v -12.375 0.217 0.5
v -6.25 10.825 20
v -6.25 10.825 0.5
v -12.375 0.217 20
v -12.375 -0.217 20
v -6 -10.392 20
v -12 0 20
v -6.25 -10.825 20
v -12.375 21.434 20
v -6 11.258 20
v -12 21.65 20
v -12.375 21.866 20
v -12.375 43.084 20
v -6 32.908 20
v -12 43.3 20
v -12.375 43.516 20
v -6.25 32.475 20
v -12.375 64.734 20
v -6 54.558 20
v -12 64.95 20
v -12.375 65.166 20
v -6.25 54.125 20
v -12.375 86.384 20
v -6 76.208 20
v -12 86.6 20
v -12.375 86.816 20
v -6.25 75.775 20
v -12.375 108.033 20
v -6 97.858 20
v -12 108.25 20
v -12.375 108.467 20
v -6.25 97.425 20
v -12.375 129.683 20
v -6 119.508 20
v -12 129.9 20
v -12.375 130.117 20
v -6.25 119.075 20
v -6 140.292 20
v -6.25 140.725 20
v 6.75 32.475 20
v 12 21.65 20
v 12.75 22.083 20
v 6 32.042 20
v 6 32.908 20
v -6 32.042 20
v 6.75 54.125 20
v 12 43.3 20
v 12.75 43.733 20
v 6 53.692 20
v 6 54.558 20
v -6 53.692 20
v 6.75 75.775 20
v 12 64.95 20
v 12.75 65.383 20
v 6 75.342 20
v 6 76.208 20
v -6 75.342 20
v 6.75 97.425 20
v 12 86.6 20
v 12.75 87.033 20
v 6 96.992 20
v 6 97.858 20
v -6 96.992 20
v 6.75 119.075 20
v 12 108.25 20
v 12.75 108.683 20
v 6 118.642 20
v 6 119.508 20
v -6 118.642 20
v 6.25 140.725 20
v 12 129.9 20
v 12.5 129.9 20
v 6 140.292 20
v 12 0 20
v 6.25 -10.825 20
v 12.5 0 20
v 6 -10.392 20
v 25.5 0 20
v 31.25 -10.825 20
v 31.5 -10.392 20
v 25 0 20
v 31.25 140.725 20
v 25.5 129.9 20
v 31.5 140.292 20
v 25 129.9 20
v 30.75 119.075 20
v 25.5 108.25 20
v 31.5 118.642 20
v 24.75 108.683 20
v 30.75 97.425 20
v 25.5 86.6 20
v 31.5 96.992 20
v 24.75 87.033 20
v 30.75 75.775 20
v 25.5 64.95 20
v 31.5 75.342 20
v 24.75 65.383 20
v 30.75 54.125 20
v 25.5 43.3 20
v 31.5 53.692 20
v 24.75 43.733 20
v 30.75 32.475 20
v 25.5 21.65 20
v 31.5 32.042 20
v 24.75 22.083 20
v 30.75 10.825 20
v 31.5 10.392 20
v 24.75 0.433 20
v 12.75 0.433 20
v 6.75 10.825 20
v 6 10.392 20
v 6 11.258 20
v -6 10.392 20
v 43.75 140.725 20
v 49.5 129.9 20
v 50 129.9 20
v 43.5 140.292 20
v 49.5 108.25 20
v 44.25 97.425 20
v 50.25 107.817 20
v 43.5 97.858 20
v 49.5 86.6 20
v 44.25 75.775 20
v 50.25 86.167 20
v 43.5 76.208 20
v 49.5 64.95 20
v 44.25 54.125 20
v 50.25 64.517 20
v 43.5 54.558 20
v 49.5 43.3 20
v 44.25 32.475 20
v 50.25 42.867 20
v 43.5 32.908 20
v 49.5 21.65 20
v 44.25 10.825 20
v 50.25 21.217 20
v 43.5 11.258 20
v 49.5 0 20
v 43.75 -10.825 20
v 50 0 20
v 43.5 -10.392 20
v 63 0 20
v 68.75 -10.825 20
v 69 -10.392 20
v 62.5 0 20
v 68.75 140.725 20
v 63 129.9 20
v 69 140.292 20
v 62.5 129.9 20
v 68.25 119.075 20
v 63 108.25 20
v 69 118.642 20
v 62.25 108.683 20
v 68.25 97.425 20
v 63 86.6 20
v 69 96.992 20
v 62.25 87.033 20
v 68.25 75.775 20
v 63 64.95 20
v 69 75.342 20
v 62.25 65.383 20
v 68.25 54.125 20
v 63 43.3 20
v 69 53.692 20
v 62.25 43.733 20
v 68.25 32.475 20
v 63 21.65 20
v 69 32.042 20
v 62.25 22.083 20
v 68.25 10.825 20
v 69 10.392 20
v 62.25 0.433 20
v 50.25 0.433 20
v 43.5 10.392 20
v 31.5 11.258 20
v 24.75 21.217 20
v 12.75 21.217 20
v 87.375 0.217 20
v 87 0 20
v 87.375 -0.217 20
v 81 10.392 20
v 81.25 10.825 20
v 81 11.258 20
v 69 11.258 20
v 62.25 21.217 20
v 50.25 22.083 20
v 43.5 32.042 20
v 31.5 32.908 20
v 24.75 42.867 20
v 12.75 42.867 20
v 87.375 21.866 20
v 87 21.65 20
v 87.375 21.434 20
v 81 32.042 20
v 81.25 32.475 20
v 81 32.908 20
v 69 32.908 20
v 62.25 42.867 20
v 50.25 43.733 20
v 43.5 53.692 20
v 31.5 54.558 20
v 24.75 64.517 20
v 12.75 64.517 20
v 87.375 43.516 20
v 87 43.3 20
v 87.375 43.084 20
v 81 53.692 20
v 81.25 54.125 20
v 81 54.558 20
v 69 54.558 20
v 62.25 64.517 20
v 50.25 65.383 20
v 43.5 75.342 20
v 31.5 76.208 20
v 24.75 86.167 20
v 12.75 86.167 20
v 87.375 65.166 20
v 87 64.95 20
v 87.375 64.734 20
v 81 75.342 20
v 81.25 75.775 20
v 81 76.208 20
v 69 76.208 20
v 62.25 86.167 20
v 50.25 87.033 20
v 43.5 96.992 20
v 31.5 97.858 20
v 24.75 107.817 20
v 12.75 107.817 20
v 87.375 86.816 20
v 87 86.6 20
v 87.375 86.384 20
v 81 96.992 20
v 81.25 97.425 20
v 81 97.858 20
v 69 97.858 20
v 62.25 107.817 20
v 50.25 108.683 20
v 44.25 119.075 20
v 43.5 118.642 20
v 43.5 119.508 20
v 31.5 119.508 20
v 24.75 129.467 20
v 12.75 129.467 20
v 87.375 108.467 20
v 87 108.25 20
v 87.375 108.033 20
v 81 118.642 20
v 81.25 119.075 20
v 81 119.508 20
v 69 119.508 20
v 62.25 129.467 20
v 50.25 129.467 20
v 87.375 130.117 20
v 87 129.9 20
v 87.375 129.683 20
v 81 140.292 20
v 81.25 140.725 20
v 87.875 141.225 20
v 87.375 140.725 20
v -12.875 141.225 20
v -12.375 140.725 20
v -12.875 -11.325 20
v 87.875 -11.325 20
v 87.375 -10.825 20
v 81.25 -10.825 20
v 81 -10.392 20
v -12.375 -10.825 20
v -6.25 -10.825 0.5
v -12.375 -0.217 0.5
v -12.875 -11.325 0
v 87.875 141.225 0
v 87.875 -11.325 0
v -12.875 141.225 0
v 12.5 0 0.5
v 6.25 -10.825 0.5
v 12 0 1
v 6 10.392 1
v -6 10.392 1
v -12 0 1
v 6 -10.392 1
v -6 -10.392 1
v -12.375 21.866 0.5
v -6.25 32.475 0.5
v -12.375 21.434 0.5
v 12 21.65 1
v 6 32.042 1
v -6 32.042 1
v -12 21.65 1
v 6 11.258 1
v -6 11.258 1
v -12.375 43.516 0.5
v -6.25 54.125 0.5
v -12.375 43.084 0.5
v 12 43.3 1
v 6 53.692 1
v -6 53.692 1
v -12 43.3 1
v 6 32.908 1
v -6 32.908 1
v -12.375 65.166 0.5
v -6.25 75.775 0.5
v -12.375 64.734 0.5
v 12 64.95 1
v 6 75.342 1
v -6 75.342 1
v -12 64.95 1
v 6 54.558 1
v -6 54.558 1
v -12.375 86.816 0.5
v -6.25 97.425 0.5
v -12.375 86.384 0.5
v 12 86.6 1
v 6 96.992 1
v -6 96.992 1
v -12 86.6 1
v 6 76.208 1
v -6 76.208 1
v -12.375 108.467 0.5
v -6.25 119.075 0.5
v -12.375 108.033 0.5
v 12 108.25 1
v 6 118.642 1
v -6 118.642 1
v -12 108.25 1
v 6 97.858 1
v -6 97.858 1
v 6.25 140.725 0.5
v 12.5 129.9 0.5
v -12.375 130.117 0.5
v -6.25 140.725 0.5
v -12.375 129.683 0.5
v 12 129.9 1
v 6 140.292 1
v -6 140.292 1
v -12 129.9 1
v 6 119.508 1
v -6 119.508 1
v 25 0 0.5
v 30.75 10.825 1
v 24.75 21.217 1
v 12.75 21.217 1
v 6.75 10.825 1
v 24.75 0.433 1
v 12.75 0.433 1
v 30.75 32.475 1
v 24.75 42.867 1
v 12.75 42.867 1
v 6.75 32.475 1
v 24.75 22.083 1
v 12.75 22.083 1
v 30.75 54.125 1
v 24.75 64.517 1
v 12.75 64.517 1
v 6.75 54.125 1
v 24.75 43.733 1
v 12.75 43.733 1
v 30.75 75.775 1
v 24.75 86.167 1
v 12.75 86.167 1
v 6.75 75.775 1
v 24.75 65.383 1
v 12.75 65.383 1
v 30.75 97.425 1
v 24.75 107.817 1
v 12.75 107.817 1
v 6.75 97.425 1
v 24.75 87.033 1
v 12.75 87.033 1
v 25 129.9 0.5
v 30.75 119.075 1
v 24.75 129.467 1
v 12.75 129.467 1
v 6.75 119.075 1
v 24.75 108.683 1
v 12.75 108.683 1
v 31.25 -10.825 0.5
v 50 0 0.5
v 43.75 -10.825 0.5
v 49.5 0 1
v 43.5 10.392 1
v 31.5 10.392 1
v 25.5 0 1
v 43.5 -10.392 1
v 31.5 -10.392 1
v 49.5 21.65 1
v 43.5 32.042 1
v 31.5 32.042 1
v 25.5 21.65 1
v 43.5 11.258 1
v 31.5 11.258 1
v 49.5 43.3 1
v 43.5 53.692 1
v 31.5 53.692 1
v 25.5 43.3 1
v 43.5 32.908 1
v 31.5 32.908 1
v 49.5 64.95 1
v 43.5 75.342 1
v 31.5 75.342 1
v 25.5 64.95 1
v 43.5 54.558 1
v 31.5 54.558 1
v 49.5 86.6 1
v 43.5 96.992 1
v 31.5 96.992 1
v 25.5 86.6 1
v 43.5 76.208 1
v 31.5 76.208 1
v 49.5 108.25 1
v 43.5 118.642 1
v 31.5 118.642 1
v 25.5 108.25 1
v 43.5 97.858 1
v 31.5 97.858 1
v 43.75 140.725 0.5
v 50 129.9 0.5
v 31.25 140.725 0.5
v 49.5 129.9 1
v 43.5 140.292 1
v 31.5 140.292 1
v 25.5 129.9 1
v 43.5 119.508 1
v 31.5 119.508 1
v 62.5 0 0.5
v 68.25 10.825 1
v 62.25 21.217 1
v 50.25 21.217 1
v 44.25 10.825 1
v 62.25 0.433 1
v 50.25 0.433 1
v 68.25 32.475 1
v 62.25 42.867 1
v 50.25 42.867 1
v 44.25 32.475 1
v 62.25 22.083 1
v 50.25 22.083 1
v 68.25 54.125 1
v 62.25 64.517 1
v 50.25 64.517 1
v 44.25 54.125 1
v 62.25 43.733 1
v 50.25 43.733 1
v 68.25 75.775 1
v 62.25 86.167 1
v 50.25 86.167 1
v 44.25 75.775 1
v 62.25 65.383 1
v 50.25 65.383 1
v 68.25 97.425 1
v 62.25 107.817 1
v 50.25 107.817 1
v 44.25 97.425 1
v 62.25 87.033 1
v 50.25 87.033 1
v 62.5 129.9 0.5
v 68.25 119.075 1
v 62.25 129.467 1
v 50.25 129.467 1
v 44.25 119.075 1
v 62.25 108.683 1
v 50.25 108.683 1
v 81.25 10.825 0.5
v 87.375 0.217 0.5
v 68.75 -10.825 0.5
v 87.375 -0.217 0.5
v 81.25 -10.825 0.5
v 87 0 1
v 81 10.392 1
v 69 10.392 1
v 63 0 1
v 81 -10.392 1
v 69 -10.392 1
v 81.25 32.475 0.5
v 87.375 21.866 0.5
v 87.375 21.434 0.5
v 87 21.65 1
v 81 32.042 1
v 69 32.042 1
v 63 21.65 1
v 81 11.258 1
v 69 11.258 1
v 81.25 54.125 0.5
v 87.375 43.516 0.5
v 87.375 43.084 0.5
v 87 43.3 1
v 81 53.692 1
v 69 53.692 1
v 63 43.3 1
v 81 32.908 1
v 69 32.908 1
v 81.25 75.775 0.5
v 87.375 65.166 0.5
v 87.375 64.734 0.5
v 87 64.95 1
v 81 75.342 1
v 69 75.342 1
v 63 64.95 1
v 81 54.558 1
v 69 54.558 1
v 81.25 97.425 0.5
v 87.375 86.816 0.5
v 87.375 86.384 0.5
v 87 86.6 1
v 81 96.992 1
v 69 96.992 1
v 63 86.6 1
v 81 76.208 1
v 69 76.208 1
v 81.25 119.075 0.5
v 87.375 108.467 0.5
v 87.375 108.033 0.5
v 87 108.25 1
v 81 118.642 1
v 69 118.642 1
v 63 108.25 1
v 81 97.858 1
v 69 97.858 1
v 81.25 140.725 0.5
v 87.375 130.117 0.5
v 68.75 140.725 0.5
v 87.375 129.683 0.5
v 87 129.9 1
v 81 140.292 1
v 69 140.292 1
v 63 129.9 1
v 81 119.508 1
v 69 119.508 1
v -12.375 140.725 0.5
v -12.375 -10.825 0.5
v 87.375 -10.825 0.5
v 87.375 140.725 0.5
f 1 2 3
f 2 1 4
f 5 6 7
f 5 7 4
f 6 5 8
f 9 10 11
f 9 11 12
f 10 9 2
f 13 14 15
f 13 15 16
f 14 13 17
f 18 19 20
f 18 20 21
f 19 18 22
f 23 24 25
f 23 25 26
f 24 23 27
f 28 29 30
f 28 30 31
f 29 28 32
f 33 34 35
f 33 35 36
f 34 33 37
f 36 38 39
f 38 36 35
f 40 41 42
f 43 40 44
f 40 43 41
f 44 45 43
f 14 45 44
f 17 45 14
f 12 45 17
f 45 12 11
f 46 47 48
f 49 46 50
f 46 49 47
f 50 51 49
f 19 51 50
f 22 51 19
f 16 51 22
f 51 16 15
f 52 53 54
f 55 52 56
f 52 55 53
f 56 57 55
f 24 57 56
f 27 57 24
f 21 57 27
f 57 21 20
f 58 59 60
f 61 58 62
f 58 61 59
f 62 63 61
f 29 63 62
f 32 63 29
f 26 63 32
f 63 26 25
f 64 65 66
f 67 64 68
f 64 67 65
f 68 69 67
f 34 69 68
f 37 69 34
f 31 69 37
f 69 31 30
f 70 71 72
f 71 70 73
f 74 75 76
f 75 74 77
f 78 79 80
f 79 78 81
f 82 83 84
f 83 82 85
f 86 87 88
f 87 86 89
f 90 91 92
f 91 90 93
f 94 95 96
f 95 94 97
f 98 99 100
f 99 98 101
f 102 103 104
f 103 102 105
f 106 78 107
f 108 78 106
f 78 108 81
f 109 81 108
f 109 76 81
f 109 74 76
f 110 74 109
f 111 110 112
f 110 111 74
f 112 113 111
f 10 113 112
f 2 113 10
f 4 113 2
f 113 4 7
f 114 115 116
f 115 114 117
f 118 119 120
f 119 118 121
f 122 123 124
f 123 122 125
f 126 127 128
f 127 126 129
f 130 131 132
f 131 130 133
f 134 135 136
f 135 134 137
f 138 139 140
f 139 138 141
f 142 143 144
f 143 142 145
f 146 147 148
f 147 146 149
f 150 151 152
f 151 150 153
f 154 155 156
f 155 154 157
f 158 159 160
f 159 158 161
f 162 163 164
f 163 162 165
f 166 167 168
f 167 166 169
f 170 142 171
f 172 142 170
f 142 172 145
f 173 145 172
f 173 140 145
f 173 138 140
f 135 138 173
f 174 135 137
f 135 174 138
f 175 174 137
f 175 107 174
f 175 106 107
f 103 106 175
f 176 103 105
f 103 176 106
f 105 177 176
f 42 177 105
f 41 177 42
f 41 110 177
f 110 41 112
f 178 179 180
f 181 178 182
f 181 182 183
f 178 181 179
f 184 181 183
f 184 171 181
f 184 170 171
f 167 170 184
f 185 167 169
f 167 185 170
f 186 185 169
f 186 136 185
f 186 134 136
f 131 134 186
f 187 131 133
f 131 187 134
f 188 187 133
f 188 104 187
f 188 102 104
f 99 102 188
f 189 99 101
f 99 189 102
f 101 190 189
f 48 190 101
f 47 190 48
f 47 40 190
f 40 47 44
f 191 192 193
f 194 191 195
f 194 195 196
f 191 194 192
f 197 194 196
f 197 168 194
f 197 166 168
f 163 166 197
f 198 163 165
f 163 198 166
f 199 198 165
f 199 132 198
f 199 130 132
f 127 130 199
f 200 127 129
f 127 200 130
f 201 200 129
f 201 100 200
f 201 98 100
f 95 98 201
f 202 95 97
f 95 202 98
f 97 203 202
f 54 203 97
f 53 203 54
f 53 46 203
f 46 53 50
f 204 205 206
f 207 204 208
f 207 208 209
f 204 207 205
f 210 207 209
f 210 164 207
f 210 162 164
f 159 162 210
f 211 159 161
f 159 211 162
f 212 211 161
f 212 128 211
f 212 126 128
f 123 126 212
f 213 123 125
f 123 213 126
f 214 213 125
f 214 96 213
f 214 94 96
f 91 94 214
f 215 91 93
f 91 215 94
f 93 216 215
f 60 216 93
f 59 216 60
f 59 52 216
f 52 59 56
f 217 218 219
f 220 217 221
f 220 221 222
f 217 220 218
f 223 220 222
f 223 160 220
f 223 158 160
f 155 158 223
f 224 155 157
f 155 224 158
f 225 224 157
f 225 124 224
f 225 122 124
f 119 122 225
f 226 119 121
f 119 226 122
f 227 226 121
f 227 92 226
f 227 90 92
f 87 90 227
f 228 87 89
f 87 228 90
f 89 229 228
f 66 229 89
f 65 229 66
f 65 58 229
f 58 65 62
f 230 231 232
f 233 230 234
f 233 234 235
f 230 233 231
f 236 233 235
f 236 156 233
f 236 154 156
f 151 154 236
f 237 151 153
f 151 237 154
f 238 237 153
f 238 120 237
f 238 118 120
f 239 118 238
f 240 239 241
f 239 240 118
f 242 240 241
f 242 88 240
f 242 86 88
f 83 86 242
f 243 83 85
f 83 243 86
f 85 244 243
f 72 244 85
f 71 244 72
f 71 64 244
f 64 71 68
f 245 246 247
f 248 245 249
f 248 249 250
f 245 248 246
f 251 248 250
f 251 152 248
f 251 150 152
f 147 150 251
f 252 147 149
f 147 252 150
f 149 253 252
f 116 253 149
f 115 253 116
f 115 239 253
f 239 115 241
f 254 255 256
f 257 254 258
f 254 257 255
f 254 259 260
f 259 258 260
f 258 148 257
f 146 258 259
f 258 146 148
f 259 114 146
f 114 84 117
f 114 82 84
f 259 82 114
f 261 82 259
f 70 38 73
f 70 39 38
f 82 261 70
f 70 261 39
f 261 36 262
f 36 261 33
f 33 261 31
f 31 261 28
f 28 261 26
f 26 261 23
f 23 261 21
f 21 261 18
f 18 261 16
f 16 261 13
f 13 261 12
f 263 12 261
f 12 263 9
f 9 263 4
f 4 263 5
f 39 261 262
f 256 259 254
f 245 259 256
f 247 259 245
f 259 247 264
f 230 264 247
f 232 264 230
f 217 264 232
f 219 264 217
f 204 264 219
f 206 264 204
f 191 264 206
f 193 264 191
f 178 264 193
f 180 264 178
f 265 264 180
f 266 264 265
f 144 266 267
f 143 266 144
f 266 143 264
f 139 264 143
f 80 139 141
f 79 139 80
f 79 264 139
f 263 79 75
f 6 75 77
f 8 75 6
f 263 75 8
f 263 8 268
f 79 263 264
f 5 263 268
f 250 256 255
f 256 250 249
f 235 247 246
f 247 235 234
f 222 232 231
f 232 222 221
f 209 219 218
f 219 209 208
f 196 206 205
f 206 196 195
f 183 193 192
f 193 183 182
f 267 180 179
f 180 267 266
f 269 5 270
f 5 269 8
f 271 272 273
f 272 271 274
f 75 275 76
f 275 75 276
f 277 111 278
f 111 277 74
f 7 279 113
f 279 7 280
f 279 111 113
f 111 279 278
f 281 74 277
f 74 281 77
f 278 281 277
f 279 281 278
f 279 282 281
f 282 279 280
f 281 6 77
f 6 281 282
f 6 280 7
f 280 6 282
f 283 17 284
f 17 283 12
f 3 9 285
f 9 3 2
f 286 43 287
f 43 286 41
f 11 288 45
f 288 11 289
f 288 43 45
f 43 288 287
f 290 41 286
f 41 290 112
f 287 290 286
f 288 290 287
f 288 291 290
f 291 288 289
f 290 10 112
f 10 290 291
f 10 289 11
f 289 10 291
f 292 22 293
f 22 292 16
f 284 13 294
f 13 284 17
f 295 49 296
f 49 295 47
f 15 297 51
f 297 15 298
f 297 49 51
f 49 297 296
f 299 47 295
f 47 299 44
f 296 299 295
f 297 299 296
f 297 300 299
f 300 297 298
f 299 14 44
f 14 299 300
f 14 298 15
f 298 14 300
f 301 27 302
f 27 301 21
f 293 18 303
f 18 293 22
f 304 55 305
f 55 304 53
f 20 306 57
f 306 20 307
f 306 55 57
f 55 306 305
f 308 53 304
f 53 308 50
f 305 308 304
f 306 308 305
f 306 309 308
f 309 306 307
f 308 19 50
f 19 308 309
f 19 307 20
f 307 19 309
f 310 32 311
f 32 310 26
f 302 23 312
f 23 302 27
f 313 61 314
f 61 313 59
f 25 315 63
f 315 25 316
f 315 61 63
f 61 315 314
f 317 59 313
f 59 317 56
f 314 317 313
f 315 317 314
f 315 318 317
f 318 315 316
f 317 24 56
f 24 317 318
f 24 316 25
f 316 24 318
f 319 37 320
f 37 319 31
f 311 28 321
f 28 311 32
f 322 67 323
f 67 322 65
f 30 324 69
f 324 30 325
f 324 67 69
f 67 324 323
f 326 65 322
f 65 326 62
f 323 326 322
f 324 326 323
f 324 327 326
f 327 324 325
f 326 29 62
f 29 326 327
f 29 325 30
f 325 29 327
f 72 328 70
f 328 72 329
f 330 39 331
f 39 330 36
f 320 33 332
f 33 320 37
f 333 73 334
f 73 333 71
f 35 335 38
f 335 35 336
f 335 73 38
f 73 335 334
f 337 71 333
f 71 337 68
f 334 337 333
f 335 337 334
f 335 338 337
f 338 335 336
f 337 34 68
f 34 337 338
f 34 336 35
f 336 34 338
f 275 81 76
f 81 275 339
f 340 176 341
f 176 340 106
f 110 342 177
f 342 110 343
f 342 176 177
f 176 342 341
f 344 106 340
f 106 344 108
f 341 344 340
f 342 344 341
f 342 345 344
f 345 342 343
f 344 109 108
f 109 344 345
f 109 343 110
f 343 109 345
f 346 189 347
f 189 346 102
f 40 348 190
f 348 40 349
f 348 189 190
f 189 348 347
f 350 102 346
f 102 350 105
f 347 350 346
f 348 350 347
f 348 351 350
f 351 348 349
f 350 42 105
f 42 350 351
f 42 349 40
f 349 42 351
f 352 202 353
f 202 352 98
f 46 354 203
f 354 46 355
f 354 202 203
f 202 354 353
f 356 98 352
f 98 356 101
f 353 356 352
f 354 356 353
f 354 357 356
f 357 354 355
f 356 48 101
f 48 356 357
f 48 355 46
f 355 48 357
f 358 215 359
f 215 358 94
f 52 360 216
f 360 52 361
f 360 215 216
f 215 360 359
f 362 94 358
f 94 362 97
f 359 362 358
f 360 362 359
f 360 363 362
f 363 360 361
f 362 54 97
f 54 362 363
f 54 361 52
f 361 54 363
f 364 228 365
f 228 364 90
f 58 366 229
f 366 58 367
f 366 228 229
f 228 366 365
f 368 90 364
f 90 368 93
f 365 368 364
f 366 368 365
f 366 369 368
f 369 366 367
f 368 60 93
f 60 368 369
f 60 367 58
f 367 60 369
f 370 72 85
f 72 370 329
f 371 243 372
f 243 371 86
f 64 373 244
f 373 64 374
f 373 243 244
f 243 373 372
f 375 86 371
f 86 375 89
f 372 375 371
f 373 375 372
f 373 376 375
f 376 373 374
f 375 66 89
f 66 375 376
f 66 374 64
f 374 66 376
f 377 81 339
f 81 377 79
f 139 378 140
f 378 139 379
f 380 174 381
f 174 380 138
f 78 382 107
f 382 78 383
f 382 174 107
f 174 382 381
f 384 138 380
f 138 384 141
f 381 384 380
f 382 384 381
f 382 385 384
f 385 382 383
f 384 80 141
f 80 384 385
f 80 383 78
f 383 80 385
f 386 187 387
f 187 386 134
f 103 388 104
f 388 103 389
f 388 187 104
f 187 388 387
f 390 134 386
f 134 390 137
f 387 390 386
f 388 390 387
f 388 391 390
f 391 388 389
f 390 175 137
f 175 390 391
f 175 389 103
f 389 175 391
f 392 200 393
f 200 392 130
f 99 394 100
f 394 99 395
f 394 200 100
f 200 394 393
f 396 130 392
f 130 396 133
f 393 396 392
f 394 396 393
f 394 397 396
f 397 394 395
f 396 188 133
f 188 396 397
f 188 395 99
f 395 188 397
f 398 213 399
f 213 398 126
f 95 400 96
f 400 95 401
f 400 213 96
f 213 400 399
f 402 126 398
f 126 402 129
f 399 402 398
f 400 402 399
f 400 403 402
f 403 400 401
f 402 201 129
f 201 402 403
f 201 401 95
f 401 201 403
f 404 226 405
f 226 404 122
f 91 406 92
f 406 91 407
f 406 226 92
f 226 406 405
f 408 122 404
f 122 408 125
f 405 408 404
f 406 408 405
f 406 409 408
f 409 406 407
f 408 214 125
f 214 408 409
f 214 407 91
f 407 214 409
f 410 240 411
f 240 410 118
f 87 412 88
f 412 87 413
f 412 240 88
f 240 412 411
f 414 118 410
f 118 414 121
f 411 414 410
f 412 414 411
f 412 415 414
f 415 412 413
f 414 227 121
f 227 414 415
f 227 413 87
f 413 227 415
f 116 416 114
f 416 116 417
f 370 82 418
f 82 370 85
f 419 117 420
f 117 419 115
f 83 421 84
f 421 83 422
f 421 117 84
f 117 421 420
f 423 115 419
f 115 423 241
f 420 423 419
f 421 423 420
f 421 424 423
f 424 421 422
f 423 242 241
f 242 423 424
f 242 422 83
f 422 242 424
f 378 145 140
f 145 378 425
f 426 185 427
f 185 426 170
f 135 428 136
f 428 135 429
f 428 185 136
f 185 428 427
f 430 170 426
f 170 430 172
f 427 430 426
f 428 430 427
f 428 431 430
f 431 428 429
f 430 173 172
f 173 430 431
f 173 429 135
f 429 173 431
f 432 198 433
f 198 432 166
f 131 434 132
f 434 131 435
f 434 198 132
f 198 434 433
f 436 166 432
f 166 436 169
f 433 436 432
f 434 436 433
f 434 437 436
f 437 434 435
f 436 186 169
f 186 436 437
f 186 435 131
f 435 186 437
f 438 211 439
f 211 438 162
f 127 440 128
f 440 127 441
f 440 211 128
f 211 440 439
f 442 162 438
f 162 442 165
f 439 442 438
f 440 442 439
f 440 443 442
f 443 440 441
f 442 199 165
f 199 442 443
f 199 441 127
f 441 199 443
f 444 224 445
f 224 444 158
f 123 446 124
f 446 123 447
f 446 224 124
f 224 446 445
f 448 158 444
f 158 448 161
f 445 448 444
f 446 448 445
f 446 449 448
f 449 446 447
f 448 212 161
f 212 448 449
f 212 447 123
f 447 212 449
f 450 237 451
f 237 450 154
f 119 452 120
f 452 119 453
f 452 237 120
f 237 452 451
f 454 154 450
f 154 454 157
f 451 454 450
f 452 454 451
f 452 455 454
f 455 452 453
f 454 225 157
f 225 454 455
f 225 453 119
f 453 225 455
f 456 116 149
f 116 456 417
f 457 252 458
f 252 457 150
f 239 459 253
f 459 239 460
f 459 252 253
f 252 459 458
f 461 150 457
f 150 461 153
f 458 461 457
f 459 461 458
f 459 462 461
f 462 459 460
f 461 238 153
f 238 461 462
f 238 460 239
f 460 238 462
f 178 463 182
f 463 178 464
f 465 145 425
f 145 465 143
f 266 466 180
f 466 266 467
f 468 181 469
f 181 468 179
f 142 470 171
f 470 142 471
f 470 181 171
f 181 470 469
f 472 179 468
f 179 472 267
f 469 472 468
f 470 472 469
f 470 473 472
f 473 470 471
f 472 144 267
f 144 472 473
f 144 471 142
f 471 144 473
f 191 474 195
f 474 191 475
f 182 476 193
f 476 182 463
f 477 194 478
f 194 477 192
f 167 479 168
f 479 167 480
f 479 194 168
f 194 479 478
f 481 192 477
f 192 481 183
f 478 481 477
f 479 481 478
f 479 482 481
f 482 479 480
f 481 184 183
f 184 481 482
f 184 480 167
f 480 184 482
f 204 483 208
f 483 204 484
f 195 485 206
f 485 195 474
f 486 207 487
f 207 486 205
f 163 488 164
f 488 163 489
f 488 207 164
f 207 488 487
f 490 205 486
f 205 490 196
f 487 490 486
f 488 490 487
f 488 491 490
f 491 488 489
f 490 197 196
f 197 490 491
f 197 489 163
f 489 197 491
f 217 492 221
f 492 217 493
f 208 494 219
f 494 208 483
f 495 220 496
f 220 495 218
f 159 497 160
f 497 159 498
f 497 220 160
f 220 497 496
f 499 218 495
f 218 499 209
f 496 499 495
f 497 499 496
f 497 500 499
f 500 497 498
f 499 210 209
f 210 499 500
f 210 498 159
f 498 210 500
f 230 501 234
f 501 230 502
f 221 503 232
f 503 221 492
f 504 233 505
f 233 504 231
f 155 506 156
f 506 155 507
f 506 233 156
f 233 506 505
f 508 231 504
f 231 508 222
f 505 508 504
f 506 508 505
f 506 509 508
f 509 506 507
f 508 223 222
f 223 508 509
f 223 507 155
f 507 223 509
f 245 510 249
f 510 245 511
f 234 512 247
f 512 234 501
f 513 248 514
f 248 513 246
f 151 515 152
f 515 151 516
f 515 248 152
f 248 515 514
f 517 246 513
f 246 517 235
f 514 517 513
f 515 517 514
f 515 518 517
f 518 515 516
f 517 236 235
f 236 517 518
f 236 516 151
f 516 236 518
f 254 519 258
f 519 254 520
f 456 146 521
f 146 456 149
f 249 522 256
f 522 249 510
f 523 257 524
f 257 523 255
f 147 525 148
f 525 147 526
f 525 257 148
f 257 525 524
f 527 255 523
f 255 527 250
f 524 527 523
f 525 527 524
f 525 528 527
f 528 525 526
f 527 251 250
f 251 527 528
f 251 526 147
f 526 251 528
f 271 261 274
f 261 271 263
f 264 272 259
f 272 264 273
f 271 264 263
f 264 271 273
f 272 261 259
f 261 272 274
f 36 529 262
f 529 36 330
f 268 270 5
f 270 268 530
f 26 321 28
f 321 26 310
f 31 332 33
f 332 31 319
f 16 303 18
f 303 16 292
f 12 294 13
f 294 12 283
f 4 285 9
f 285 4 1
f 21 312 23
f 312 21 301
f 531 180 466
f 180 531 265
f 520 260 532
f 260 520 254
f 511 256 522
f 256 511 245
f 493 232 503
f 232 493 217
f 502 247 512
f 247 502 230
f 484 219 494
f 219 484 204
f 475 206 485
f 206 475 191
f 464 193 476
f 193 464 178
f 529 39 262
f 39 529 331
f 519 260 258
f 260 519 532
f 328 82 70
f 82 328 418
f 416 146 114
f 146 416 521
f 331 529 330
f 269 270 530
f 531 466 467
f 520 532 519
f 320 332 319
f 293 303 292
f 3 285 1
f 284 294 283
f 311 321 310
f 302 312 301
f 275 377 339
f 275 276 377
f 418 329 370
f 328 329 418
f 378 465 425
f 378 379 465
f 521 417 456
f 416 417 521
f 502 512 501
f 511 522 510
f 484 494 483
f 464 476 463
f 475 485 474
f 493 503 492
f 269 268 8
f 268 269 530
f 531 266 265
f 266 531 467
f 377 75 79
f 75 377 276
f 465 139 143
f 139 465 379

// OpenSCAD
xs = 4;
ys = 5;

difference() {
    translate([-18.75/2-3.5,-21.65/2-0.5,0])
        cube([(xs+1)*18.75+7,(ys+2)*21.65+1,20]);
    translate([-18.75/2-3.5+0.5,-21.65/2-0.5+0.5,0.5])
        cube([(xs+1)*18.75+7-1,(ys+2)*21.65+1-1,20]);

}

for (xi = [0:xs]) {
    for (yi = [0:ys+(xi+1)%2]) {
        translate([xi*18.75,(yi+(xi%2)/2)*21.65,0])
            difference() {
                translate([0,0,0])
                    cylinder(d=25, h=20, $fn=6);
                translate([0,0,1])
                    cylinder(d=25-1, h=20, $fn=6);
            }
    }
}


/*
translate([0,0,25]) {
    difference() {
    union() {
        translate([0,0,0])
            cylinder(d1=25-1.3, d2=25, h=2, $fn=6);
        translate([0,0,-2])
            cylinder(d=25-1.3, h=2, $fn=6);
    }
    translate([0,0,-2])
        cylinder(d=25-2.3, h=3, $fn=6);
    }
}
*/
